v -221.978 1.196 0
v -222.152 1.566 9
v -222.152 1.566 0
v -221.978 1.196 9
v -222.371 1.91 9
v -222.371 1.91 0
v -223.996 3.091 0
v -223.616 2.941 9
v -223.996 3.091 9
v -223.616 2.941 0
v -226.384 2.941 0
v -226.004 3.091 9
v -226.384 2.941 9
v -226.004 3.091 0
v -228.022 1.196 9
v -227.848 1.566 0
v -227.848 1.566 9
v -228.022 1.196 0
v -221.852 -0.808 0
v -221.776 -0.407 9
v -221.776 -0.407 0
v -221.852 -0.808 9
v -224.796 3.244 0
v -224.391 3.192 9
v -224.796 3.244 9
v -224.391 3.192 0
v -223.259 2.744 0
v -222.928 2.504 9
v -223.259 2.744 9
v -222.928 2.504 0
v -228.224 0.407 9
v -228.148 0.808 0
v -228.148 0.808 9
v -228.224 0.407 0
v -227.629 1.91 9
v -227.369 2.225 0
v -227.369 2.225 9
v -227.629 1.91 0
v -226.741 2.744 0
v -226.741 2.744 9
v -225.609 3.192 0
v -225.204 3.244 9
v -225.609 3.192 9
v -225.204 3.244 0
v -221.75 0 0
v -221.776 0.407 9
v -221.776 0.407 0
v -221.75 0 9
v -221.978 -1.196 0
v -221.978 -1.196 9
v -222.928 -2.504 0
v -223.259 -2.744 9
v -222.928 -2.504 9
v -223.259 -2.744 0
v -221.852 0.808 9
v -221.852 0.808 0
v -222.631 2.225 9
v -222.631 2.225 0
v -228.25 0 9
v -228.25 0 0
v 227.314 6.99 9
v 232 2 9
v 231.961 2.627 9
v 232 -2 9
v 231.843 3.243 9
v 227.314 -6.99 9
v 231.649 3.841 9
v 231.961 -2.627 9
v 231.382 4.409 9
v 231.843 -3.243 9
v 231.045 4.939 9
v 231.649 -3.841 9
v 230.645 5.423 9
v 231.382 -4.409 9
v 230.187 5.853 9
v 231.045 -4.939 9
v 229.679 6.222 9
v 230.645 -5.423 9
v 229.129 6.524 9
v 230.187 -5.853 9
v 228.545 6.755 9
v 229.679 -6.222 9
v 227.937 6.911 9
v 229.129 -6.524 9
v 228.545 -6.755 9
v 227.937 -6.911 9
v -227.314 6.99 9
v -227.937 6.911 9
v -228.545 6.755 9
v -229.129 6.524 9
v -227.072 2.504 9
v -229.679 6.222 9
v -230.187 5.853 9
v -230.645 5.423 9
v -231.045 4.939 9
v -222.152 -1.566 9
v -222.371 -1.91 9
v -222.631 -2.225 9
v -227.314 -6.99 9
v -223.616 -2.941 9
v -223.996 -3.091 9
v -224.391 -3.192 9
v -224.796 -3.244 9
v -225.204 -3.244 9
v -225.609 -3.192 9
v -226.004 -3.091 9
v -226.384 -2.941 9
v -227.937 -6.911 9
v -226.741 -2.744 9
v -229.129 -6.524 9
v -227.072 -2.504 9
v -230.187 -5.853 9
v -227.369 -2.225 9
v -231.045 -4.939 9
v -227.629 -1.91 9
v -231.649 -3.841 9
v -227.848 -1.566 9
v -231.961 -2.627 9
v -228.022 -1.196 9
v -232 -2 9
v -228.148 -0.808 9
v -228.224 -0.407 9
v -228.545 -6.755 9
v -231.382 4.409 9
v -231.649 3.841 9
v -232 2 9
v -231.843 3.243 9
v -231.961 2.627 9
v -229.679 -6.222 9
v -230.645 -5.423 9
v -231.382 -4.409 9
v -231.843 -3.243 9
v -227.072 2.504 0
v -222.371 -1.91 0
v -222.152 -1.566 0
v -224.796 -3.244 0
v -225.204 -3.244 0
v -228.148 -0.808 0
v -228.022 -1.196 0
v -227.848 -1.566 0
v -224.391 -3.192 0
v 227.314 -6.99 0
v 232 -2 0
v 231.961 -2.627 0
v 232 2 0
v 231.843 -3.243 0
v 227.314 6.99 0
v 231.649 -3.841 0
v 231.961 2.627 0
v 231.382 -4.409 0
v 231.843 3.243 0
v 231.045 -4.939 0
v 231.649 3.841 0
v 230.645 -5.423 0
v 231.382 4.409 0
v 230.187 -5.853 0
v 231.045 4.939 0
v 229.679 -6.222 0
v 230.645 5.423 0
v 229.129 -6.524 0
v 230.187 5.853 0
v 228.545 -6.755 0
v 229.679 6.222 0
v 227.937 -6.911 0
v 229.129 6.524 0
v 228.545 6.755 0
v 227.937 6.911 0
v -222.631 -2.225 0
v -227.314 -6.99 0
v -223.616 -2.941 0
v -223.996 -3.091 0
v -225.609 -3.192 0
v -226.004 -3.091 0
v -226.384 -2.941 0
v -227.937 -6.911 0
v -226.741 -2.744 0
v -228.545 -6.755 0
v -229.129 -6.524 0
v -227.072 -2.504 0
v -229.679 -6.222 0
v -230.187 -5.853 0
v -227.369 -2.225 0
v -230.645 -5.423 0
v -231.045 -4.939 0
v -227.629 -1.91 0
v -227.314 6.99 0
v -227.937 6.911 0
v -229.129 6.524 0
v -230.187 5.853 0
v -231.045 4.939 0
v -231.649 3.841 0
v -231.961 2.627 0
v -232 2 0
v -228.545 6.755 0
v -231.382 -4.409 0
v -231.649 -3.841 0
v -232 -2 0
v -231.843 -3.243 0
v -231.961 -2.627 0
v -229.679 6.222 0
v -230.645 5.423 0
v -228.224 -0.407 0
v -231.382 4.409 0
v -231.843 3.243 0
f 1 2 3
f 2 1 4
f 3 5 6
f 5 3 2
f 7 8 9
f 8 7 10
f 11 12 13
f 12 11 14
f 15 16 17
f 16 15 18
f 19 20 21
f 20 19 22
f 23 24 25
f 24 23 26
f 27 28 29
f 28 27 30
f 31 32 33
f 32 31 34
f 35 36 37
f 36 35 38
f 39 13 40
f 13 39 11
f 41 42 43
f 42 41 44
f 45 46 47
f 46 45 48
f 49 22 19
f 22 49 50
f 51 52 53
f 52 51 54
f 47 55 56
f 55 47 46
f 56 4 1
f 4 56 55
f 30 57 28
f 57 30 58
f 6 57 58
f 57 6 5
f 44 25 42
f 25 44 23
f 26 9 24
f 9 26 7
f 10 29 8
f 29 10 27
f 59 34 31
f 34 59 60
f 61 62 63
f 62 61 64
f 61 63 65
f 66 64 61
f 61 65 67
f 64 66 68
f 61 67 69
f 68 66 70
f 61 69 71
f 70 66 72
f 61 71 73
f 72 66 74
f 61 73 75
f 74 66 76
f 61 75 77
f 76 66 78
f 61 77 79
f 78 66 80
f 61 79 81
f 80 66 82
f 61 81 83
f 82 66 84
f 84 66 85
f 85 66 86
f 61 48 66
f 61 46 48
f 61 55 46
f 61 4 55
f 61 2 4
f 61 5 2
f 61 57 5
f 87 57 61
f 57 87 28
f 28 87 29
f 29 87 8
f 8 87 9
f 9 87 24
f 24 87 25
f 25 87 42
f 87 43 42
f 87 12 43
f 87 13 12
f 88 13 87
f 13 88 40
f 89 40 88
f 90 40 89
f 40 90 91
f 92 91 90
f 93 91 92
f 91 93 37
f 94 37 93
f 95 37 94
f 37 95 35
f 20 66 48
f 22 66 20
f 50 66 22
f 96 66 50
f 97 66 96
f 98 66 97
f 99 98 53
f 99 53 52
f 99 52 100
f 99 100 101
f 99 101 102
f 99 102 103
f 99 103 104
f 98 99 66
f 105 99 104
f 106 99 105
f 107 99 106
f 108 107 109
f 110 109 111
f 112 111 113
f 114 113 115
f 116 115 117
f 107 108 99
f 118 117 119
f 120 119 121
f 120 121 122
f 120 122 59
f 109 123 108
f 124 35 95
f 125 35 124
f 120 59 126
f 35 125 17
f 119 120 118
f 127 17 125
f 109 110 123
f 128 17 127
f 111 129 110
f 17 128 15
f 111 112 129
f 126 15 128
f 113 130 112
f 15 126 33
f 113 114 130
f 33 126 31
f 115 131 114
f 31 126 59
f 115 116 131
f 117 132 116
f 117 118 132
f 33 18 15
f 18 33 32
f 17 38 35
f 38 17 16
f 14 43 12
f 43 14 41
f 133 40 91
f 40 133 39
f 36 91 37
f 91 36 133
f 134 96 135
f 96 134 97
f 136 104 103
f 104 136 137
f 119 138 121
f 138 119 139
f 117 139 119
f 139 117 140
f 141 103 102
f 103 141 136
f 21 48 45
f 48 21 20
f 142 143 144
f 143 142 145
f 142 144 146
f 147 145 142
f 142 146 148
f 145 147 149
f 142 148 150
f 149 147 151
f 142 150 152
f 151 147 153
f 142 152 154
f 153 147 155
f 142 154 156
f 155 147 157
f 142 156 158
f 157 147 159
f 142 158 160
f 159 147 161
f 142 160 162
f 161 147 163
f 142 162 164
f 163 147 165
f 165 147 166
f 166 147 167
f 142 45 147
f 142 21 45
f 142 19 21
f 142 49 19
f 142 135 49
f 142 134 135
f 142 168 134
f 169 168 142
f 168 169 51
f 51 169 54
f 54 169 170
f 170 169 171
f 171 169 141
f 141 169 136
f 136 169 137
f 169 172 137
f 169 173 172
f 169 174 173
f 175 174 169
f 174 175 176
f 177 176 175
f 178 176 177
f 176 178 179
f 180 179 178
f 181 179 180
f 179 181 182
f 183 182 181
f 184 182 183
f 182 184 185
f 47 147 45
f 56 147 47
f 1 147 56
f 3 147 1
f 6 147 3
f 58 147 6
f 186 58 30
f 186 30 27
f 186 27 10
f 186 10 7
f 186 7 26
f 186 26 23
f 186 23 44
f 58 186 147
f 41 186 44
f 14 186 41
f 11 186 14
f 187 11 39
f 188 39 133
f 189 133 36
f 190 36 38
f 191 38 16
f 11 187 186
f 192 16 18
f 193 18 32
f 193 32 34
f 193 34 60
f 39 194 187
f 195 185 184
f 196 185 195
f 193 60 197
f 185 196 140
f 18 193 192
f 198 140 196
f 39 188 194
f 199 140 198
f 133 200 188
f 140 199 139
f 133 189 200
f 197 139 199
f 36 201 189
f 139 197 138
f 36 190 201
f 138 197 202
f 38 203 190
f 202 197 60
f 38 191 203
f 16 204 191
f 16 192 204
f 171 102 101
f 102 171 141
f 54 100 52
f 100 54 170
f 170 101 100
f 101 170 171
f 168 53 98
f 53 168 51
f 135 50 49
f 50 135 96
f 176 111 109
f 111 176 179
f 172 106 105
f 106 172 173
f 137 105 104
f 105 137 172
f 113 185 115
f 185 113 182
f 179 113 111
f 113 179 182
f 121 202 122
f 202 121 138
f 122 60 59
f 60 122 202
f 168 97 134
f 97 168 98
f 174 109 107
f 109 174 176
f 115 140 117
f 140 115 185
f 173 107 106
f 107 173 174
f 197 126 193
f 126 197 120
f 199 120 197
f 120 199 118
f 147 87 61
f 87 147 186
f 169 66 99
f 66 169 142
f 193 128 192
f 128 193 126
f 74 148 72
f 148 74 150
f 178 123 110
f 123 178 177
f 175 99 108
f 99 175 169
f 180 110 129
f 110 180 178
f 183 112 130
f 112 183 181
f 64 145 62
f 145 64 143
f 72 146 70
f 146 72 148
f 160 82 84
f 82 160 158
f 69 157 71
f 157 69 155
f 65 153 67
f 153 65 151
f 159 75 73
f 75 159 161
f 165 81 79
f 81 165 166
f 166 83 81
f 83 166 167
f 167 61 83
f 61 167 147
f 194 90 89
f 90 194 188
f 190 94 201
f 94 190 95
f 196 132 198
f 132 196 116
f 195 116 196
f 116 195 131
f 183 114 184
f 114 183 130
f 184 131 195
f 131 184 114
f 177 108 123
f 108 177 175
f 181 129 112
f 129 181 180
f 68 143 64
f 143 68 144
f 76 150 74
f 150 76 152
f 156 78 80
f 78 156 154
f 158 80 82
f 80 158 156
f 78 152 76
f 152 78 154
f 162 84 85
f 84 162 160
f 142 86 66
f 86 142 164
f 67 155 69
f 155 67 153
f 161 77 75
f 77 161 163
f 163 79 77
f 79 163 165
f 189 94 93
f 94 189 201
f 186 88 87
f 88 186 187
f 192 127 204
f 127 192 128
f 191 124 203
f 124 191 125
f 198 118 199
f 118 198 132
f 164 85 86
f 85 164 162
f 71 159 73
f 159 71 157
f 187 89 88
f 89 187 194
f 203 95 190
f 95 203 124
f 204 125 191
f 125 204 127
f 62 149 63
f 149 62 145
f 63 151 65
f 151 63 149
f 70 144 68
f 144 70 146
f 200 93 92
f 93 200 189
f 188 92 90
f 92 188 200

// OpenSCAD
$fn = 50;


difference() {
	union() {
		hull() {
			translate(v = [-227.0000000000, 2.0000000000, 0]) {
				cylinder(h = 9, r = 5);
			}
			translate(v = [227.0000000000, 2.0000000000, 0]) {
				cylinder(h = 9, r = 5);
			}
			translate(v = [-227.0000000000, -2.0000000000, 0]) {
				cylinder(h = 9, r = 5);
			}
			translate(v = [227.0000000000, -2.0000000000, 0]) {
				cylinder(h = 9, r = 5);
			}
		}
	}
	union() {
		translate(v = [-225.0000000000, 0.0000000000, 0]) {
			cylinder(h = 9, r = 3.2500000000);
		}
		translate(v = [-225.0000000000, 0.0000000000, 0]) {
			cylinder(h = 9, r = 1.8000000000);
		}
		translate(v = [-225.0000000000, 0.0000000000, 0]) {
			cylinder(h = 9, r = 1.8000000000);
		}
		translate(v = [-225.0000000000, 0.0000000000, 0]) {
			cylinder(h = 9, r = 1.8000000000);
		}
	}
}
